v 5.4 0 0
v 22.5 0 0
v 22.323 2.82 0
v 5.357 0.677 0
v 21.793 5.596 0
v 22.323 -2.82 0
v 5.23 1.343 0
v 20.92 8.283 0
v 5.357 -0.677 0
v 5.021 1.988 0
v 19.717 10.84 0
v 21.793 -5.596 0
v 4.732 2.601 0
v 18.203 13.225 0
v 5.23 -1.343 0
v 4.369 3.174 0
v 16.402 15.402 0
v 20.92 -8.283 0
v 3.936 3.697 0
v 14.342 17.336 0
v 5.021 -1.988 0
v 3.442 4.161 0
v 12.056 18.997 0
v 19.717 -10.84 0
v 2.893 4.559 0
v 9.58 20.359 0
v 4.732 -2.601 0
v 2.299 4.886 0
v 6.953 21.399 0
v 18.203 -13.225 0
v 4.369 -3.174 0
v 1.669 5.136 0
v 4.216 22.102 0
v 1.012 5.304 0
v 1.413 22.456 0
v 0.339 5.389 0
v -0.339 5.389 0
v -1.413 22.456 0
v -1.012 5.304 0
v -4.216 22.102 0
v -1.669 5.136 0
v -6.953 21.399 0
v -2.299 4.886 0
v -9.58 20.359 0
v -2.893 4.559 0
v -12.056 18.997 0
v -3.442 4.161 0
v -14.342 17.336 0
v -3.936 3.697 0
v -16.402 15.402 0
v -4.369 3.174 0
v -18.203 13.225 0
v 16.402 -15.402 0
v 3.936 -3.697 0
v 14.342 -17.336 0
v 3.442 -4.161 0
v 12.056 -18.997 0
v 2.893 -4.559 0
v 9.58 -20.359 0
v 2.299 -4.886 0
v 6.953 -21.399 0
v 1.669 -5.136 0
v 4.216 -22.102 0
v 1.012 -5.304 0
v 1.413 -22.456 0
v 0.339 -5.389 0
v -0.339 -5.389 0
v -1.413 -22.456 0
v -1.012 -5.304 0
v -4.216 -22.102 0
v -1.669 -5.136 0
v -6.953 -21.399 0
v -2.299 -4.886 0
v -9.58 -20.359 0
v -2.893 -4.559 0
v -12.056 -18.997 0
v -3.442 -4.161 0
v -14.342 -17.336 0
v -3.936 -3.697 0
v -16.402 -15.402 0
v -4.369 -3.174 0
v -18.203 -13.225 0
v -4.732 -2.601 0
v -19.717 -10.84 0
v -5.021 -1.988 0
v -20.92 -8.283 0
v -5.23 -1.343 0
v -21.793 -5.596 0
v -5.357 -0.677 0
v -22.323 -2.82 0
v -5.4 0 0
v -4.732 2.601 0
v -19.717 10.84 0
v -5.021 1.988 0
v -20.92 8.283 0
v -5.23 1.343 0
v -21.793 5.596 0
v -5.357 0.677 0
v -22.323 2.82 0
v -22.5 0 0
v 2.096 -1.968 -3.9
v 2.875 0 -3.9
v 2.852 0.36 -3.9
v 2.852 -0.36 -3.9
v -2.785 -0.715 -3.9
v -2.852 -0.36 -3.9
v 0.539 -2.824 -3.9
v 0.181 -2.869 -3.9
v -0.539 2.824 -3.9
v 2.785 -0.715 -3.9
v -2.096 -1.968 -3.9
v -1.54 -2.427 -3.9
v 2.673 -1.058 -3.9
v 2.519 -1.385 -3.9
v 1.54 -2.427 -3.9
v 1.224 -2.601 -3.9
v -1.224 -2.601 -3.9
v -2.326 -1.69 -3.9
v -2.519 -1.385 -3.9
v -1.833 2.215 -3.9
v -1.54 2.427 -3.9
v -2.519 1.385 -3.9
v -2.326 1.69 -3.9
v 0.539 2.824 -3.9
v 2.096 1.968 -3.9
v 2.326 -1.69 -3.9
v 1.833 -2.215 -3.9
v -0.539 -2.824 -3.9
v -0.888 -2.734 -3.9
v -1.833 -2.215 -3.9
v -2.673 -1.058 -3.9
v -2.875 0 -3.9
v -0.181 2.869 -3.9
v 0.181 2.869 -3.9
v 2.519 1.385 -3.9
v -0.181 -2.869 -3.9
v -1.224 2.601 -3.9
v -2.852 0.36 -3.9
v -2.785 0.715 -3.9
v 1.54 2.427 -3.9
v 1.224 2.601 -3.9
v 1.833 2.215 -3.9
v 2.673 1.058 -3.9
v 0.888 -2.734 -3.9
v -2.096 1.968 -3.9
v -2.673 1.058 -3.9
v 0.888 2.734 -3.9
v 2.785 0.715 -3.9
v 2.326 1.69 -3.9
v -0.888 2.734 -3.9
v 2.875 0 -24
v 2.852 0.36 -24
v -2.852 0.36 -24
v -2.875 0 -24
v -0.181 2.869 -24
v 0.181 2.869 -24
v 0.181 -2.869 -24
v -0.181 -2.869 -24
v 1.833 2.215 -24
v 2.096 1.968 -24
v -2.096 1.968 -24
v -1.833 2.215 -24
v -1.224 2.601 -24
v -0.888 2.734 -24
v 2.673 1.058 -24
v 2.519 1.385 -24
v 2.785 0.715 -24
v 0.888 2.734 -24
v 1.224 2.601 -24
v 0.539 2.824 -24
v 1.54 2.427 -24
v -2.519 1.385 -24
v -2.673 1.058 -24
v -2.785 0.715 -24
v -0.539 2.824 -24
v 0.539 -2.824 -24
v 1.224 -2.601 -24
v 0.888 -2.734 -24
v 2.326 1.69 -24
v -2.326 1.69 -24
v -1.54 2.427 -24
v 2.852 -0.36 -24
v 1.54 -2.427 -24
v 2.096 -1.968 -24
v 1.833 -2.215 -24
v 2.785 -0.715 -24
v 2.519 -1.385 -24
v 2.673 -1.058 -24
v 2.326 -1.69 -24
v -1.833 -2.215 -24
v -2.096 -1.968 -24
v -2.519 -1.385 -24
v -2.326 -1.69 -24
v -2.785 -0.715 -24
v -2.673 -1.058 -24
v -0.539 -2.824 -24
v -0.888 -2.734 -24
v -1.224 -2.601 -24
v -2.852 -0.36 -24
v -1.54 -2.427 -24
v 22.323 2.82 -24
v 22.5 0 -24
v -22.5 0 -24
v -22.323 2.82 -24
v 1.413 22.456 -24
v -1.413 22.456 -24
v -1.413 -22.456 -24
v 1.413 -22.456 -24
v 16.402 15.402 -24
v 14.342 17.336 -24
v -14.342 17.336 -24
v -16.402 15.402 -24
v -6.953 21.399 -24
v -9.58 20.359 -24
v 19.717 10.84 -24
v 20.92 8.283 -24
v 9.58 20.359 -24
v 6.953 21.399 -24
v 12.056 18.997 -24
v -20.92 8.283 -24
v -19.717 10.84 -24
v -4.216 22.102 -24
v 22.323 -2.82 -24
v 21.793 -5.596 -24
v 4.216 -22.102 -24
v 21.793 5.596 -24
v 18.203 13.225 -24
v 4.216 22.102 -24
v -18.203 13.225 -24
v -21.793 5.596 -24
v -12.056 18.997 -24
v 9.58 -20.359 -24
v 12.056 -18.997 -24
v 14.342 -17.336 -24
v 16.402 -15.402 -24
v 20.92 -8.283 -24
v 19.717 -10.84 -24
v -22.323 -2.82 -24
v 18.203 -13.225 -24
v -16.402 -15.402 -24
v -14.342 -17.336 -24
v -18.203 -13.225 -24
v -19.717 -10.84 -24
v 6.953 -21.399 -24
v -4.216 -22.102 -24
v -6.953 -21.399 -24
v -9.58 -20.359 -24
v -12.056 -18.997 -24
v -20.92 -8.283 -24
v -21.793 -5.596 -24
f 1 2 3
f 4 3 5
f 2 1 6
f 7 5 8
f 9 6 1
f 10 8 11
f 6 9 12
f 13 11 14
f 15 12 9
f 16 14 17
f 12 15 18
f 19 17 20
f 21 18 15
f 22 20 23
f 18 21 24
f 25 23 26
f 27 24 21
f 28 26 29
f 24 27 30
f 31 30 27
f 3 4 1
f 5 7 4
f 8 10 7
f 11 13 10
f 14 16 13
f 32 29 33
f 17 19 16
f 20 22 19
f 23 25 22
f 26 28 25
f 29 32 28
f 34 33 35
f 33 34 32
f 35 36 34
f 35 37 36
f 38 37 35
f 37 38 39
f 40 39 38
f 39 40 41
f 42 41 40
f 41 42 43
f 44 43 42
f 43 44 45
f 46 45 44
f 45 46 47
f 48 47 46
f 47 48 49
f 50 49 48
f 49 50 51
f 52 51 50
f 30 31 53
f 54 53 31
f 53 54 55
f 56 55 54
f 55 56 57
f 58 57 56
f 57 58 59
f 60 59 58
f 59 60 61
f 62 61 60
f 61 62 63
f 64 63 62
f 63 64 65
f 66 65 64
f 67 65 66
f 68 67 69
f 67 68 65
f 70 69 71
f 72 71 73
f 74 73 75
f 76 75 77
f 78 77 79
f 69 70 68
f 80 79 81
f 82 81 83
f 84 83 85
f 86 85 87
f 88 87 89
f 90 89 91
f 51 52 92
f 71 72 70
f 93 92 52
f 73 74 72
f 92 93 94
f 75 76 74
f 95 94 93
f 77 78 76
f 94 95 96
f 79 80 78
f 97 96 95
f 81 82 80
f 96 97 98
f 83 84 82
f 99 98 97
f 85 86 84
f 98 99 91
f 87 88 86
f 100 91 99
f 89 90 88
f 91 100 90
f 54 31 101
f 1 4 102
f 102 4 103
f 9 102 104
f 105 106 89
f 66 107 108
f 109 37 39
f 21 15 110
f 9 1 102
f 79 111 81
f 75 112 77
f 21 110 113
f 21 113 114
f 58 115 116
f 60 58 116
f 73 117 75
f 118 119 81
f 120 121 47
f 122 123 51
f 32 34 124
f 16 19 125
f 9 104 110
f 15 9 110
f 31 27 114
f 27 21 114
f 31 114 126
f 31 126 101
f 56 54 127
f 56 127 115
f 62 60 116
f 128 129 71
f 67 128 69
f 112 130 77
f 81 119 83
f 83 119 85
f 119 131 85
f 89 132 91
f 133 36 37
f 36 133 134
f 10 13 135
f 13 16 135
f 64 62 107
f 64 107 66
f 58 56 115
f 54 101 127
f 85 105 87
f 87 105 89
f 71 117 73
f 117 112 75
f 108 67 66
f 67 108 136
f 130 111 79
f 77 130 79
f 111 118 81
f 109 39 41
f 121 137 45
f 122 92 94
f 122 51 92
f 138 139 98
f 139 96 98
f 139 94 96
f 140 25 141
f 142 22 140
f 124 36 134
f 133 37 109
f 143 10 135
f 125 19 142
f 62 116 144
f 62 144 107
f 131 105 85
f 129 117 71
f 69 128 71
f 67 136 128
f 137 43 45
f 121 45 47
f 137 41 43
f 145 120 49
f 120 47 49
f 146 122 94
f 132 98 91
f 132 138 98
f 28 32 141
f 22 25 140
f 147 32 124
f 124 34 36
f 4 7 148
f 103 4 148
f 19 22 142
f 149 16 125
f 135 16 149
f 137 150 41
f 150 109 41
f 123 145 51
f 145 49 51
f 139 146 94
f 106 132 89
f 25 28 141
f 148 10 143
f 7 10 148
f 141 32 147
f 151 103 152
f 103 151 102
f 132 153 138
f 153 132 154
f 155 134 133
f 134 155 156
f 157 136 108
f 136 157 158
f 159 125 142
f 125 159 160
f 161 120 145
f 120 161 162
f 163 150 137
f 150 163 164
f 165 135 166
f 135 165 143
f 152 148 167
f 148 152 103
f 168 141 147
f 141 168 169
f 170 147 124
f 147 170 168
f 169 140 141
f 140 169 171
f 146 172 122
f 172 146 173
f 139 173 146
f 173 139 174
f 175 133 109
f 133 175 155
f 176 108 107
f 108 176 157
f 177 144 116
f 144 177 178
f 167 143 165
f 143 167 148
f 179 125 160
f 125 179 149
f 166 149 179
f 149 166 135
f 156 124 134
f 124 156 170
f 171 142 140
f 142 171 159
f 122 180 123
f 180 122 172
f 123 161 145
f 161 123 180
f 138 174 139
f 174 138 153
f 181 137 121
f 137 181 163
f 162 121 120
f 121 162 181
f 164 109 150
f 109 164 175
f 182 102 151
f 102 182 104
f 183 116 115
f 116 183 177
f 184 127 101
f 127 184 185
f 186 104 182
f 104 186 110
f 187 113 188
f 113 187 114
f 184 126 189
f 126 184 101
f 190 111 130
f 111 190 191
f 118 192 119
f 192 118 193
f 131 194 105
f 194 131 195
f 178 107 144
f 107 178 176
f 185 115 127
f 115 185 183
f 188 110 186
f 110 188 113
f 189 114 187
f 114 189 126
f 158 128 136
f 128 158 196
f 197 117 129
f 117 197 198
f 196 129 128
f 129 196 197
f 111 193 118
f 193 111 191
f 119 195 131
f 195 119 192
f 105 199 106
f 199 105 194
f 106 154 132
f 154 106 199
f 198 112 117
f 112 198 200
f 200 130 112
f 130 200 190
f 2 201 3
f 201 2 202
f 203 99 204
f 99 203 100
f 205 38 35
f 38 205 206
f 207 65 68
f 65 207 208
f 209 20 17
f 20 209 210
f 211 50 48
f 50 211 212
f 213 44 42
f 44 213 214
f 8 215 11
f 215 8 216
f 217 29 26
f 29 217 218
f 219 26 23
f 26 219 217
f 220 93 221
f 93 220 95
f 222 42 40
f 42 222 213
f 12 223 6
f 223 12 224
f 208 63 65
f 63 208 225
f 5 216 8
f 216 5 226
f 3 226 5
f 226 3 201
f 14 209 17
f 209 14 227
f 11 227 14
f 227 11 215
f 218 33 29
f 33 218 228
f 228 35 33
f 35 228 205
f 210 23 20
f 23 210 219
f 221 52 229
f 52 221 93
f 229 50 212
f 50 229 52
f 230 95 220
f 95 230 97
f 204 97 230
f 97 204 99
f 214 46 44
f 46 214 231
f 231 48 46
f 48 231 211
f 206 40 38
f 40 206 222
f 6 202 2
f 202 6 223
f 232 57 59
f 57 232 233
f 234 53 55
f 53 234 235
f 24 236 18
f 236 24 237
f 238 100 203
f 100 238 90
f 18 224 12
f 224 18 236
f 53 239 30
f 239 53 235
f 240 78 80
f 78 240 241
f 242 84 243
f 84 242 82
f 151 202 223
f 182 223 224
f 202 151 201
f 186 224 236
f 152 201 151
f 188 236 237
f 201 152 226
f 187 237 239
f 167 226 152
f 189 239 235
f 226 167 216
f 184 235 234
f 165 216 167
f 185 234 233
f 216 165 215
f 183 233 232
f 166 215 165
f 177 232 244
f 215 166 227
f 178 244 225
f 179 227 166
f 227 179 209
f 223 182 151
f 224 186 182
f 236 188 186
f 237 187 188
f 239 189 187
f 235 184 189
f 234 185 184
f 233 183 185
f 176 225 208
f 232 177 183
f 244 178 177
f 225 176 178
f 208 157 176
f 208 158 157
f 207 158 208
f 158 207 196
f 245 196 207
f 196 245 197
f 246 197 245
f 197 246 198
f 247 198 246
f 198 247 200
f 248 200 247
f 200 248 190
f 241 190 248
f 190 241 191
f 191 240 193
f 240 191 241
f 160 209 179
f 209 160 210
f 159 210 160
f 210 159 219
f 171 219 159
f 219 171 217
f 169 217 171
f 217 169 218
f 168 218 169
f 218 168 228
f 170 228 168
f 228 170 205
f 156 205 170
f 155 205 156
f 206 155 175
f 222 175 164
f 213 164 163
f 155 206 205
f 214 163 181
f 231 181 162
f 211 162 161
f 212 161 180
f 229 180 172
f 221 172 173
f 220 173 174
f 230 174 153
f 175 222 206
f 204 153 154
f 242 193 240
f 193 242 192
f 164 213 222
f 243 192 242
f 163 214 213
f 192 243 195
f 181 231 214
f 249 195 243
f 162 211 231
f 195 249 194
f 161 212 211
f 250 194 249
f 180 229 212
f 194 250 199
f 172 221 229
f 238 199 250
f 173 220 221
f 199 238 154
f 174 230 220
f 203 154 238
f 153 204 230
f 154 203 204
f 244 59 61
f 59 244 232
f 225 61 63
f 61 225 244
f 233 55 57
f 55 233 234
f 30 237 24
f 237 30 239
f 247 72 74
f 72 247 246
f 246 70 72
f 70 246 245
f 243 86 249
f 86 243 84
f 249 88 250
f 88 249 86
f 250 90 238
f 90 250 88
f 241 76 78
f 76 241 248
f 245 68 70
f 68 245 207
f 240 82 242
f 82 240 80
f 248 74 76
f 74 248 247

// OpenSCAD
$fn = 50;

difference() {
	union() {
		translate(v = [0, 0, -24.0]) {
			cylinder(h = 24, r = 22.5);
		}
	}
	union() {
		translate(v = [0, 0, 0]) {
			rotate(a = [0, 0, 0]) {
				difference() {
					union() {
						translate(v = [0, 0, -27.0]) {
							cylinder(h = 27, r = 2.6);
						}
						translate(v = [0, 0, -3.9]) {
							cylinder(h = 3.9, r1 = 2.875, r2 = 5.4);
						}
						translate(v = [0, 0, -27.0]) {
							cylinder(h = 27, r = 2.875);
						}
						translate(v = [0, 0, -27.0]) {
							cylinder(h = 27, r = 2.6);
						}
					}
					union();
				}
			}
		}
	}
}
